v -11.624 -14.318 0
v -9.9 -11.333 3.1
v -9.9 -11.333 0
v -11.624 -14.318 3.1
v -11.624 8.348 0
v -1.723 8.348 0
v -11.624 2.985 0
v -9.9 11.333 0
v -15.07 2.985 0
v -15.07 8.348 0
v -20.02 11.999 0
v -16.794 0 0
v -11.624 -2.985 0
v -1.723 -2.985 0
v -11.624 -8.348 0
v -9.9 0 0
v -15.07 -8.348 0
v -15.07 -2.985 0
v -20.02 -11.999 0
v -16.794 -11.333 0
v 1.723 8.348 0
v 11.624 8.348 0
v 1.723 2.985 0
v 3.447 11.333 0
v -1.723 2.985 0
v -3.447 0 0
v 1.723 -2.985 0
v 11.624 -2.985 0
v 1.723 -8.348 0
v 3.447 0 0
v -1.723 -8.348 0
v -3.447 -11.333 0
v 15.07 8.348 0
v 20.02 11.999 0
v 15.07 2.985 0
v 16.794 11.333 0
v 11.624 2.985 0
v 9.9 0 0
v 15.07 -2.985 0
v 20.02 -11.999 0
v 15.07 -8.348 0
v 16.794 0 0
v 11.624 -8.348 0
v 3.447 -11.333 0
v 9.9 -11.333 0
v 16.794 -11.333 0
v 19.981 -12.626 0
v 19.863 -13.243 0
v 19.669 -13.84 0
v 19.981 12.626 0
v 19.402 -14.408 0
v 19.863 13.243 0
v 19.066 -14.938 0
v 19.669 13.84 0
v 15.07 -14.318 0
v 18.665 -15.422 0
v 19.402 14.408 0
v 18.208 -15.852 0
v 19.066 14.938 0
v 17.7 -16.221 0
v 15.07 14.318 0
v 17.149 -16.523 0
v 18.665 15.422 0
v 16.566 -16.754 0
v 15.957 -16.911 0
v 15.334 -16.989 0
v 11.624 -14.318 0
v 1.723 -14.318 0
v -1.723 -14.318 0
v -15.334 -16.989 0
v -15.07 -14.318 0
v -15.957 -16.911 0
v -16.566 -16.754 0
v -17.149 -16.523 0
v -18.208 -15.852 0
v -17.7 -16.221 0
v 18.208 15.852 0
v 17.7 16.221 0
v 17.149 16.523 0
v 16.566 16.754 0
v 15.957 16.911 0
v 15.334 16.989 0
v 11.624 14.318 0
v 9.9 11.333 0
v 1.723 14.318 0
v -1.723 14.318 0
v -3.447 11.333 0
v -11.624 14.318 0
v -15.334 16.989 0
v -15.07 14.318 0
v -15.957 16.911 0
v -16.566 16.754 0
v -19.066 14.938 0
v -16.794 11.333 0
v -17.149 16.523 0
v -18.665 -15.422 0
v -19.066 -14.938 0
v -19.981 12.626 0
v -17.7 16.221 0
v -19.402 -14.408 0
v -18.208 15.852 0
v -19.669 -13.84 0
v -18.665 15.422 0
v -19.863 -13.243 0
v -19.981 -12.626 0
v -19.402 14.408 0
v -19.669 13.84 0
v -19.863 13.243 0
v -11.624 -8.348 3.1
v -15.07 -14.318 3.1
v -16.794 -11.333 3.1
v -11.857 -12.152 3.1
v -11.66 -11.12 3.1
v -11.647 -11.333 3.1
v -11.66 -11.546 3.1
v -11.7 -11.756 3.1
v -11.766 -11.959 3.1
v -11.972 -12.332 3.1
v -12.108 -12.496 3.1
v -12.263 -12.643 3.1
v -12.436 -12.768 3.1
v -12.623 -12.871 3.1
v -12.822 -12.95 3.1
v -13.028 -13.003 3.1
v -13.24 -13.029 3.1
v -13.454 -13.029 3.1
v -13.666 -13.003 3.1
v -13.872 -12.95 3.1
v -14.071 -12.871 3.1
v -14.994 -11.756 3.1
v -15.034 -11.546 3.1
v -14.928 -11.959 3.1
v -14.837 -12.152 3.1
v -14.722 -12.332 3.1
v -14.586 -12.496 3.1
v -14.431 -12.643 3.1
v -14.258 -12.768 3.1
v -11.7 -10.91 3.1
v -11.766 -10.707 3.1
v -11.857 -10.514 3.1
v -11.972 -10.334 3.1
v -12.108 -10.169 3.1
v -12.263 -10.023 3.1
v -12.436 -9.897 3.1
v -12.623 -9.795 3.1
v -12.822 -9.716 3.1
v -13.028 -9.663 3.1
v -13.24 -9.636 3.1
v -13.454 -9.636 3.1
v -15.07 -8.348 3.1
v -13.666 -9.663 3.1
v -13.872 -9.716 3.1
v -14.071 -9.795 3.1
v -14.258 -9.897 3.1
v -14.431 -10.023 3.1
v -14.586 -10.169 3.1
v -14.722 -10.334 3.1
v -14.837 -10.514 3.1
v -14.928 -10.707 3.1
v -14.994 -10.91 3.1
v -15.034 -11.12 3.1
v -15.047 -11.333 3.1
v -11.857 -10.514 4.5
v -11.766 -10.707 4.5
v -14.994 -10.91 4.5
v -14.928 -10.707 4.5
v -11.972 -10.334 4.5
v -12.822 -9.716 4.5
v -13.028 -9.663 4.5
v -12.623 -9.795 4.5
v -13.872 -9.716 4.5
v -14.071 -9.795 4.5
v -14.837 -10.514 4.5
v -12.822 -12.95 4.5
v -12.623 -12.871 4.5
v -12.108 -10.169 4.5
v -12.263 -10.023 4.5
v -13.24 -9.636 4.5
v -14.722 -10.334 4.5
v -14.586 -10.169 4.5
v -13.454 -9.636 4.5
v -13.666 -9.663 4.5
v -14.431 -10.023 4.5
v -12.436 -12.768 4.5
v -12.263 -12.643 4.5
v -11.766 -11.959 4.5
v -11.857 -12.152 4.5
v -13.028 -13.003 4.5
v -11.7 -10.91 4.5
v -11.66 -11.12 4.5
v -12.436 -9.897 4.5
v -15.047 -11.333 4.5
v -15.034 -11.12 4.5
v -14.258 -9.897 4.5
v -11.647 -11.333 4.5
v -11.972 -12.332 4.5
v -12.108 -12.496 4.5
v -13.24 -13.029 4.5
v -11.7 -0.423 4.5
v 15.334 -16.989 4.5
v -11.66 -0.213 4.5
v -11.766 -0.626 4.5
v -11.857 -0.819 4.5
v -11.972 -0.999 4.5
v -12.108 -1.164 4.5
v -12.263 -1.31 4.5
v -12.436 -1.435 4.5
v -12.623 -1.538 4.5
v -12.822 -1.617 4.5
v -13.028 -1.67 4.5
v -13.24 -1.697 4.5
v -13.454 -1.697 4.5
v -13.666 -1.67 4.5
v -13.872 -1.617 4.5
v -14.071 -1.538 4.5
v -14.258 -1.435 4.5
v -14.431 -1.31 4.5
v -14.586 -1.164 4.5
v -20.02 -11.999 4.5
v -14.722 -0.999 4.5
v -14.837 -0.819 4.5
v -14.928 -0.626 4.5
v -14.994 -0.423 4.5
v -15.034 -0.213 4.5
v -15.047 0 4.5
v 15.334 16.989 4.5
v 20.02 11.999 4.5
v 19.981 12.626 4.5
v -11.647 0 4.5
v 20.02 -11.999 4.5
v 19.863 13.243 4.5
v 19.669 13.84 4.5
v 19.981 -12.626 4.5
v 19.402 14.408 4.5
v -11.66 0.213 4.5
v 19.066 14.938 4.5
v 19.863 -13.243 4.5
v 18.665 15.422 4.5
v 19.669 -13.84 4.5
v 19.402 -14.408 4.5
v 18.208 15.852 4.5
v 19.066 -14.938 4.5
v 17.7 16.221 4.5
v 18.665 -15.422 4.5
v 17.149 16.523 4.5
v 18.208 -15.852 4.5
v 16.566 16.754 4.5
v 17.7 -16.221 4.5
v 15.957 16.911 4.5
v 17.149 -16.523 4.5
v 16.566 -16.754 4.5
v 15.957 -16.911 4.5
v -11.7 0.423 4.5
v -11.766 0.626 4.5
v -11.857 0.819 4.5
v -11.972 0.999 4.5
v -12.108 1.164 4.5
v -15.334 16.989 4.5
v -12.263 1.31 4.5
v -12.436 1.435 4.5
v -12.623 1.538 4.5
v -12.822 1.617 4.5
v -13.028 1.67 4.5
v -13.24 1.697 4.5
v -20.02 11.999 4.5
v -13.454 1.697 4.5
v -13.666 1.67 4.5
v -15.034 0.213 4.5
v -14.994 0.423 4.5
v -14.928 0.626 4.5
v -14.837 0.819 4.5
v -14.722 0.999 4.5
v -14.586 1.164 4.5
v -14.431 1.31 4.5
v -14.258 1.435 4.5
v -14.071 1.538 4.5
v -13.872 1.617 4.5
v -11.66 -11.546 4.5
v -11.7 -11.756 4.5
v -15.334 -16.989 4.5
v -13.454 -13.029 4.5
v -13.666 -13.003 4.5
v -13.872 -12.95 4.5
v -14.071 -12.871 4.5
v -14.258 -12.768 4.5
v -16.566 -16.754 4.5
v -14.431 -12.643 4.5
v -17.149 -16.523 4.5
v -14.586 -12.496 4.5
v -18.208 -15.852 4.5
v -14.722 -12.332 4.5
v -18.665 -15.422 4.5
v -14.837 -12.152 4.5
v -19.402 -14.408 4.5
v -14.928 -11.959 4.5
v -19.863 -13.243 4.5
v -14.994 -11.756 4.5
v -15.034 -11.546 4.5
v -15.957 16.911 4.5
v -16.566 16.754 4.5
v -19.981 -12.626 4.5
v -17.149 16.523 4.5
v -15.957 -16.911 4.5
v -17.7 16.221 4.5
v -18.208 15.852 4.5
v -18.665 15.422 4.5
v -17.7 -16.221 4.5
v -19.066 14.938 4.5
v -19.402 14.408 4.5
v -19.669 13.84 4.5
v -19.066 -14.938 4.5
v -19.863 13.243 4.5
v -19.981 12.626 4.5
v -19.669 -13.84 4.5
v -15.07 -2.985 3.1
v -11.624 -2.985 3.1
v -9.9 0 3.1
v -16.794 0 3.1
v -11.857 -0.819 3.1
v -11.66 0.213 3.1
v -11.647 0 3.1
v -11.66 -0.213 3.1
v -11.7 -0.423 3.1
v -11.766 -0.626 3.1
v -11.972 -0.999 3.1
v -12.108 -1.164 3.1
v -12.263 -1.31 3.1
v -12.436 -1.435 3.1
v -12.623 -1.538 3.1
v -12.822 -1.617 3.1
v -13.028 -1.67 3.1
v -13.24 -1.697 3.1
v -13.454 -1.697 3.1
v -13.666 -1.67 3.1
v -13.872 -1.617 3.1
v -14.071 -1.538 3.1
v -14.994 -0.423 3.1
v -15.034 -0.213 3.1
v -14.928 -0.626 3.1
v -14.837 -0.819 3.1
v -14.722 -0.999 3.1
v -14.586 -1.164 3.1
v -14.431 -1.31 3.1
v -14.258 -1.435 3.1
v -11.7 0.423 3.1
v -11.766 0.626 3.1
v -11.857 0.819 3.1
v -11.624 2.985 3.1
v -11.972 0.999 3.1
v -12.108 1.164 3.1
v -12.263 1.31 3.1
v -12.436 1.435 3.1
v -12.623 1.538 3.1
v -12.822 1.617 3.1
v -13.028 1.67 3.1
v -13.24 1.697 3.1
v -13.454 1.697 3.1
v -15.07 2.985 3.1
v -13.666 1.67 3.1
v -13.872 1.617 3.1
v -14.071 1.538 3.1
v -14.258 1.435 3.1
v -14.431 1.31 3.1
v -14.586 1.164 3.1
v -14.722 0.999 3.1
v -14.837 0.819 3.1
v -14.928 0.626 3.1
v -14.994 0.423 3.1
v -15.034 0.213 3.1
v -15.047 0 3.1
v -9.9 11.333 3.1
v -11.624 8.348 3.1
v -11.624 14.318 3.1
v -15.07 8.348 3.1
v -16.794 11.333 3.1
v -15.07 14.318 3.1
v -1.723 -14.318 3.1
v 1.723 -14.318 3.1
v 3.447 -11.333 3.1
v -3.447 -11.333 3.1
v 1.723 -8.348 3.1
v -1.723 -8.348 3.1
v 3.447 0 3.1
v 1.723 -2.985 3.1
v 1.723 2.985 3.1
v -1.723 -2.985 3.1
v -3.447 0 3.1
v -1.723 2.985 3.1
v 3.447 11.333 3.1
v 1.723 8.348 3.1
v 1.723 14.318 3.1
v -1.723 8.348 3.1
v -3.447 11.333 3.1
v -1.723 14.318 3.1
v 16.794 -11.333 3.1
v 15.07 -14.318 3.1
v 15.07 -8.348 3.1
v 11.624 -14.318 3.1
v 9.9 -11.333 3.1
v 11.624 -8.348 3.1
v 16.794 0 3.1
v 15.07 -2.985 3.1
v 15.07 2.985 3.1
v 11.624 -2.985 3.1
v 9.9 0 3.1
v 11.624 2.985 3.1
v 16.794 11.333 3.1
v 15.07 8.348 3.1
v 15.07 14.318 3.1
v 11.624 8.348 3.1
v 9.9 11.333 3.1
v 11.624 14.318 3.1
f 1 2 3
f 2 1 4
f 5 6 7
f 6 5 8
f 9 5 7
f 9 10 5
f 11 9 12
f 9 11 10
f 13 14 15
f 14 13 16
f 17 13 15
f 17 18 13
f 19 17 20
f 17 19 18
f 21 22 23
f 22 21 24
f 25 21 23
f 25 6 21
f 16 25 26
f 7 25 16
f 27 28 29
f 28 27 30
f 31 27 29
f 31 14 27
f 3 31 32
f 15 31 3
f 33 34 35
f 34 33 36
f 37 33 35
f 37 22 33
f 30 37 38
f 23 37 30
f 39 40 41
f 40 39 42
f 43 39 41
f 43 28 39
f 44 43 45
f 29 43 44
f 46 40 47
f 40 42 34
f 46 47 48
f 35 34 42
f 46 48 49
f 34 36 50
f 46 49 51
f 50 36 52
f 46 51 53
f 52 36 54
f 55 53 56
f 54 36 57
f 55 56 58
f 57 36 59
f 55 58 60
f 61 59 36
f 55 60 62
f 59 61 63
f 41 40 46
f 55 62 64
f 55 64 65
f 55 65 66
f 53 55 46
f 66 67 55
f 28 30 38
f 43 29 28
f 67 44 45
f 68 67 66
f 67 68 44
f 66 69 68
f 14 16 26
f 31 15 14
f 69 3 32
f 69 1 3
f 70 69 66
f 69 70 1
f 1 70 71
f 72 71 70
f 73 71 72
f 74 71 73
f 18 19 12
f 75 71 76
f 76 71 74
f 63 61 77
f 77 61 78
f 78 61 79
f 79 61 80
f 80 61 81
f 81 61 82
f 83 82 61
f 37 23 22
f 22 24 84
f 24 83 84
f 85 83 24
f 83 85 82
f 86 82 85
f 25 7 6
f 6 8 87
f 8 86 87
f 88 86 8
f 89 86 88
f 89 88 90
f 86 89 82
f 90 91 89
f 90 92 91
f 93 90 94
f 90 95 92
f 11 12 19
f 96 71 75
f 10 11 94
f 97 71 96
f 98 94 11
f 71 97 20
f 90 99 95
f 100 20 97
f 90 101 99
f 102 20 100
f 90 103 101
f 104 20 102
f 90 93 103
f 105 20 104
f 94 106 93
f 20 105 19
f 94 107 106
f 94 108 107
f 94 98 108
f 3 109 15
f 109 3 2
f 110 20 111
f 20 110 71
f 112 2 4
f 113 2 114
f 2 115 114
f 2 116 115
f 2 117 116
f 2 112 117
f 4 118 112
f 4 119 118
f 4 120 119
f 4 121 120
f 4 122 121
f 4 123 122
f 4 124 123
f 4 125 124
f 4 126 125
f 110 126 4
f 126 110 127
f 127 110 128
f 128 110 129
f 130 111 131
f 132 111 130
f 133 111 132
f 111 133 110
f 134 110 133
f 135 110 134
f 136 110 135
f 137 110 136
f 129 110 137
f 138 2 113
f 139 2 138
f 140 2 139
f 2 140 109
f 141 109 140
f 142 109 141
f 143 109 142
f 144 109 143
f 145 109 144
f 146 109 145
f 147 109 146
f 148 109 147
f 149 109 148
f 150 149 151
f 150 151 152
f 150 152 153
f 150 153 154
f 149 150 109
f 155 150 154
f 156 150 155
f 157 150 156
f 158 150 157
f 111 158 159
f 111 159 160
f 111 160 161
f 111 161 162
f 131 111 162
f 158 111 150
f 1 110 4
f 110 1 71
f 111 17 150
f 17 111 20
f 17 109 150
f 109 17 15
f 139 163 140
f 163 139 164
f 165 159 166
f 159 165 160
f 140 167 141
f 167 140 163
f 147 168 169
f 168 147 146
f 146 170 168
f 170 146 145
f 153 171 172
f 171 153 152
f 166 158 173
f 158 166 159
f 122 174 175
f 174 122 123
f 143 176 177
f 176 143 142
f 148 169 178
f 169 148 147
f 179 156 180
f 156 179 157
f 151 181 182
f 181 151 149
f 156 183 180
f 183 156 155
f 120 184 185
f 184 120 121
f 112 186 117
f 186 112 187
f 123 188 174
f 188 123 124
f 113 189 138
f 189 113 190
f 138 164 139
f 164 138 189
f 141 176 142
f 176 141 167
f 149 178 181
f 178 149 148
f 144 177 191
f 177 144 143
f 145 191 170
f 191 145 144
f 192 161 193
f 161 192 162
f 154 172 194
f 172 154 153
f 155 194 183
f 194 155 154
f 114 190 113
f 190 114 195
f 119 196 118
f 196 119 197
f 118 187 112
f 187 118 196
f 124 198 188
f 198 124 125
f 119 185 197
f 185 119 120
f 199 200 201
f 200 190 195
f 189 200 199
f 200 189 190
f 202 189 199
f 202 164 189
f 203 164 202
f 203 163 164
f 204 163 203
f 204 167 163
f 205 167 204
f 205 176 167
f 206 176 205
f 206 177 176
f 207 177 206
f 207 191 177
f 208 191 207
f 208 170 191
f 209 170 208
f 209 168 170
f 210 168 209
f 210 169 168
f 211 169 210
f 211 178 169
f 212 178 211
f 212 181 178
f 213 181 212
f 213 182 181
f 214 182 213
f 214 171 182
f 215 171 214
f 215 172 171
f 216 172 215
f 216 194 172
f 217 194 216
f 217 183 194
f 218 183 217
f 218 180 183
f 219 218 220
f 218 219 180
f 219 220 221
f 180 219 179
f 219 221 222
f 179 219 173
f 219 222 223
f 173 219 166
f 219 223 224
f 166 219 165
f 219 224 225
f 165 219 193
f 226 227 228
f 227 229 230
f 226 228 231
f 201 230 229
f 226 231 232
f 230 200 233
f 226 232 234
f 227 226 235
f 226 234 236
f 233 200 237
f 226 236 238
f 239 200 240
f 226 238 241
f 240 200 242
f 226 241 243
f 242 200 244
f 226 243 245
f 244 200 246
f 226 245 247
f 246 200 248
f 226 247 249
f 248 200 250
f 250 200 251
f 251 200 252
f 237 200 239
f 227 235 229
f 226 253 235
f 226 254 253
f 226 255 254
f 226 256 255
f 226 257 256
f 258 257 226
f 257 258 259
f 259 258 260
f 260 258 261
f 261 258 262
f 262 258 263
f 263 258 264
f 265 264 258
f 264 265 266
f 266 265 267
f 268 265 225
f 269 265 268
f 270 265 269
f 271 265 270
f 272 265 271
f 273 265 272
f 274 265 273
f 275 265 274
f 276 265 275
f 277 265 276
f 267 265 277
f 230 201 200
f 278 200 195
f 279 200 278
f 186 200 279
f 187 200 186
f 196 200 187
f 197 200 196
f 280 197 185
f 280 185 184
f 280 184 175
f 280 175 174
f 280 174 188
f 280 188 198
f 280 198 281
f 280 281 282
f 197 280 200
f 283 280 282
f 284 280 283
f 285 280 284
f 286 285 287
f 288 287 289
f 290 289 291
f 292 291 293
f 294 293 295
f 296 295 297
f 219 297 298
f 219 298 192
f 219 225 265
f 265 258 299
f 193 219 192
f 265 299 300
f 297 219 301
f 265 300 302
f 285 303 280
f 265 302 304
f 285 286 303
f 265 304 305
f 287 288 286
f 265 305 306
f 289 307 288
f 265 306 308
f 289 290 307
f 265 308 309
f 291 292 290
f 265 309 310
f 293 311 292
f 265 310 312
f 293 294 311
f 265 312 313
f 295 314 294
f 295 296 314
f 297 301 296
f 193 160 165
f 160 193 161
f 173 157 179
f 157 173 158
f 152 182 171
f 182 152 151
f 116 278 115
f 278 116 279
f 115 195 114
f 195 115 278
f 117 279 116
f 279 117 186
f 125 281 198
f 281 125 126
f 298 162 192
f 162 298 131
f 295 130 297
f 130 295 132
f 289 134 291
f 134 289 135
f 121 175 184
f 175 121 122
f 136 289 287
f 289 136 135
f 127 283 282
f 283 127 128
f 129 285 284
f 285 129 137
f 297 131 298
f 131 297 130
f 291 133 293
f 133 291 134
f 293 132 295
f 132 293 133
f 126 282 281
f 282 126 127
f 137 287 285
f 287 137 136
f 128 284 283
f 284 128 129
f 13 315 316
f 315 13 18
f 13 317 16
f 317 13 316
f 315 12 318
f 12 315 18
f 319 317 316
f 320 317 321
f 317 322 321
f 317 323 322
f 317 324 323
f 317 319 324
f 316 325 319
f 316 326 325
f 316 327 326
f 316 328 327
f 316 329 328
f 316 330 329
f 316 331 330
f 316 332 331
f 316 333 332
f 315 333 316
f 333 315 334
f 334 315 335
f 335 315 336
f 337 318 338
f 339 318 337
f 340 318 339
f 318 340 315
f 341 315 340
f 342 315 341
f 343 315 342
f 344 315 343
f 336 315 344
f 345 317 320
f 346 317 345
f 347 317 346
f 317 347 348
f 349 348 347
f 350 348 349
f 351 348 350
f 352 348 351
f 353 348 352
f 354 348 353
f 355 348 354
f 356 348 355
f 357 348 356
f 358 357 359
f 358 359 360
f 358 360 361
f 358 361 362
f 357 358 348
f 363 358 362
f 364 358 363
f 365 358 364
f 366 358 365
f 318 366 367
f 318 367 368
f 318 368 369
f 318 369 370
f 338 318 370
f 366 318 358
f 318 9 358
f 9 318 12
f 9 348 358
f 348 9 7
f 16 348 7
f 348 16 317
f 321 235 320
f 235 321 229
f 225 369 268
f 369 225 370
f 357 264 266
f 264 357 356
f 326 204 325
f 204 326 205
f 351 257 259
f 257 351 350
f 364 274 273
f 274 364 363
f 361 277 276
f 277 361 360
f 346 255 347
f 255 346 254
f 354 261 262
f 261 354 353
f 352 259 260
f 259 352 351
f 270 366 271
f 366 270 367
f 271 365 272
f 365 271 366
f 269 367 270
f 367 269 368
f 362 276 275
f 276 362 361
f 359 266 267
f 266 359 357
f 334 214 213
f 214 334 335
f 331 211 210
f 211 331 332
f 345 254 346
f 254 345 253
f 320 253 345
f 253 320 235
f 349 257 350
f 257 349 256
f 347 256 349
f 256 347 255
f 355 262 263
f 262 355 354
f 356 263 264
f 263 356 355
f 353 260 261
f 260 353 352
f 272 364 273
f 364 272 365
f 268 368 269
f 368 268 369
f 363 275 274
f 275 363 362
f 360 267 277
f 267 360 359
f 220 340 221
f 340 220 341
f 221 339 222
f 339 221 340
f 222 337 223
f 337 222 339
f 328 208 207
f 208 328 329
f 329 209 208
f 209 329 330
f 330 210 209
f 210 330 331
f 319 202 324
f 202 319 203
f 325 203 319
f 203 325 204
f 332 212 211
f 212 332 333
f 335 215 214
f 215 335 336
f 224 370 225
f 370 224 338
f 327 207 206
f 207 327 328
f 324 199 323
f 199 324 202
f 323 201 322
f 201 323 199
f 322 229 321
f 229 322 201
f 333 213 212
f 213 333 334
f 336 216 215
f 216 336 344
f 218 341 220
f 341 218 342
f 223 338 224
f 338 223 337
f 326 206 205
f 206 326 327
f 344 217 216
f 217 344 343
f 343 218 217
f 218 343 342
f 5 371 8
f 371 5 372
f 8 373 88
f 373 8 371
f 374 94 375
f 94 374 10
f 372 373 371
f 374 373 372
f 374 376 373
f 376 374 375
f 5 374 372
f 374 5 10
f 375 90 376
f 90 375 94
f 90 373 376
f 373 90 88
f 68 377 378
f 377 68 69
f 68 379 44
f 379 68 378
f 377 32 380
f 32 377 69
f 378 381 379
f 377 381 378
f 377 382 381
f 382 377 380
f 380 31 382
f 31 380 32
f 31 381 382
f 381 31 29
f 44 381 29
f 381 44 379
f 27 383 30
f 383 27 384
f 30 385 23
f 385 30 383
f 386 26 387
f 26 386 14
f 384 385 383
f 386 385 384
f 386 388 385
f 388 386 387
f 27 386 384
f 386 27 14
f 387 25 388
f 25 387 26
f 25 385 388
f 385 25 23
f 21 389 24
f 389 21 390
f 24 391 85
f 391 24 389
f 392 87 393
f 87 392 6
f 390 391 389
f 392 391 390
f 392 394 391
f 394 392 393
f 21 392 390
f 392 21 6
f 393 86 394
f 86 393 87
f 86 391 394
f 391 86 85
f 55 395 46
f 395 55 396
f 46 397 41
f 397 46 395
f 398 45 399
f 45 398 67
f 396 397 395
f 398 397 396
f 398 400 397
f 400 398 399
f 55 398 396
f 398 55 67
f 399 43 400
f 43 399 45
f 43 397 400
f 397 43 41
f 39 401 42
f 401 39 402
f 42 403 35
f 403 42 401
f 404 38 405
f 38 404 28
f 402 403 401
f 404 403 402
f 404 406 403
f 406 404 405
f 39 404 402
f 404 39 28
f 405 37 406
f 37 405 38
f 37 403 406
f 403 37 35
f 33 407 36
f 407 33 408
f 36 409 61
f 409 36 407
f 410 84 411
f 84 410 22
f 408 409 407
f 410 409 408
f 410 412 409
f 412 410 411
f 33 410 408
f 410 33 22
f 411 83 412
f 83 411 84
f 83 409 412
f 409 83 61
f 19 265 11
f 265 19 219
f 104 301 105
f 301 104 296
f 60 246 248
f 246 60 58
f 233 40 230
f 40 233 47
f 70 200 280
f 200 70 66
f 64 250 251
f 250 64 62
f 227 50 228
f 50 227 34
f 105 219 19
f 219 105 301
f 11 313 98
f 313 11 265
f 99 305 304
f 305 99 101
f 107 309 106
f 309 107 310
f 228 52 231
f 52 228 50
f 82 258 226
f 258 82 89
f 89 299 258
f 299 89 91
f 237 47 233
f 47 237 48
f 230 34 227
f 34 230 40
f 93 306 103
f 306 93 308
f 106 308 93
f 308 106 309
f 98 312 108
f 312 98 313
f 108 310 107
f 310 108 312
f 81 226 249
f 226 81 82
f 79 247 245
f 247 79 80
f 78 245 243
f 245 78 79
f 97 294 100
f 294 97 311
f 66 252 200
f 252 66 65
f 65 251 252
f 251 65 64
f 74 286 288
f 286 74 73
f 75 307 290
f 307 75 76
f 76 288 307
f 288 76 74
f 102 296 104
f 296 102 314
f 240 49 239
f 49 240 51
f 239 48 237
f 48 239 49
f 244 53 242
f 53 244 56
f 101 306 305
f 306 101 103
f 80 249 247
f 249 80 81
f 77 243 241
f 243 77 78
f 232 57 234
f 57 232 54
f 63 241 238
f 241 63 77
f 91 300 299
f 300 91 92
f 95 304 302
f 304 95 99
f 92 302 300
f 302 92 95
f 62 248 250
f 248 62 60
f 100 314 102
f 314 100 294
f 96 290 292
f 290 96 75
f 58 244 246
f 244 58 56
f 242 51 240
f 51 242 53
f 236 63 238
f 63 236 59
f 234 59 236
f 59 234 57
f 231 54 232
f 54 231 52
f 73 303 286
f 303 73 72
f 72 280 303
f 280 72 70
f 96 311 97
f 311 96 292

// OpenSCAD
$fn = 50;


difference() {
	union() {
		translate(v = [0, 0, 0]) {
			rotate(a = [0, 0, 0]) {
				hull() {
					translate(v = [-15.0205000000, 11.9991334489, 0]) {
						rotate(a = [0, 0, 0]) {
							translate(v = [0, 0, 0]) {
								rotate(a = [0, 0, 0]) {
									cylinder(h = 4.5000000000, r = 5);
								}
							}
						}
					}
					translate(v = [15.0205000000, 11.9991334489, 0]) {
						rotate(a = [0, 0, 0]) {
							translate(v = [0, 0, 0]) {
								rotate(a = [0, 0, 0]) {
									cylinder(h = 4.5000000000, r = 5);
								}
							}
						}
					}
					translate(v = [-15.0205000000, -11.9991334489, 0]) {
						rotate(a = [0, 0, 0]) {
							translate(v = [0, 0, 0]) {
								rotate(a = [0, 0, 0]) {
									cylinder(h = 4.5000000000, r = 5);
								}
							}
						}
					}
					translate(v = [15.0205000000, -11.9991334489, 0]) {
						rotate(a = [0, 0, 0]) {
							translate(v = [0, 0, 0]) {
								rotate(a = [0, 0, 0]) {
									cylinder(h = 4.5000000000, r = 5);
								}
							}
						}
					}
				}
			}
		}
	}
	union() {
		translate(v = [-13.3470000000, -11.3327556326, 0]) {
			rotate(a = [0, 0, 0]) {
				translate(v = [0, 0, 0]) {
					rotate(a = [0, 0, 0]) {
						linear_extrude(height = 3.1000000000) {
							polygon(points = [[3.4466000000, 0.0000000000], [1.7233000000, 2.9848431567], [-1.7233000000, 2.9848431567], [-3.4466000000, 0.0000000000], [-1.7233000000, -2.9848431567], [1.7233000000, -2.9848431567]]);
						}
					}
				}
			}
		}
		#translate(v = [-13.3470000000, -11.3327556326, 0]) {
			rotate(a = [0, 0, 0]) {
				cylinder(h = 4.5000000000, r = 1.7000000000);
			}
		}
		translate(v = [-13.3470000000, -0.0000000000, 0]) {
			rotate(a = [0, 0, 0]) {
				translate(v = [0, 0, 0]) {
					rotate(a = [0, 0, 0]) {
						linear_extrude(height = 3.1000000000) {
							polygon(points = [[3.4466000000, 0.0000000000], [1.7233000000, 2.9848431567], [-1.7233000000, 2.9848431567], [-3.4466000000, 0.0000000000], [-1.7233000000, -2.9848431567], [1.7233000000, -2.9848431567]]);
						}
					}
				}
			}
		}
		#translate(v = [-13.3470000000, -0.0000000000, 0]) {
			rotate(a = [0, 0, 0]) {
				cylinder(h = 4.5000000000, r = 1.7000000000);
			}
		}
		translate(v = [-13.3470000000, 11.3327556326, 0]) {
			rotate(a = [0, 0, 0]) {
				translate(v = [0, 0, 0]) {
					rotate(a = [0, 0, 0]) {
						linear_extrude(height = 3.1000000000) {
							polygon(points = [[3.4466000000, 0.0000000000], [1.7233000000, 2.9848431567], [-1.7233000000, 2.9848431567], [-3.4466000000, 0.0000000000], [-1.7233000000, -2.9848431567], [1.7233000000, -2.9848431567]]);
						}
					}
				}
			}
		}
		translate(v = [0.0000000000, -11.3327556326, 0]) {
			rotate(a = [0, 0, 0]) {
				translate(v = [0, 0, 0]) {
					rotate(a = [0, 0, 0]) {
						linear_extrude(height = 3.1000000000) {
							polygon(points = [[3.4466000000, 0.0000000000], [1.7233000000, 2.9848431567], [-1.7233000000, 2.9848431567], [-3.4466000000, 0.0000000000], [-1.7233000000, -2.9848431567], [1.7233000000, -2.9848431567]]);
						}
					}
				}
			}
		}
		translate(v = [0.0000000000, -0.0000000000, 0]) {
			rotate(a = [0, 0, 0]) {
				translate(v = [0, 0, 0]) {
					rotate(a = [0, 0, 0]) {
						linear_extrude(height = 3.1000000000) {
							polygon(points = [[3.4466000000, 0.0000000000], [1.7233000000, 2.9848431567], [-1.7233000000, 2.9848431567], [-3.4466000000, 0.0000000000], [-1.7233000000, -2.9848431567], [1.7233000000, -2.9848431567]]);
						}
					}
				}
			}
		}
		translate(v = [0.0000000000, 11.3327556326, 0]) {
			rotate(a = [0, 0, 0]) {
				translate(v = [0, 0, 0]) {
					rotate(a = [0, 0, 0]) {
						linear_extrude(height = 3.1000000000) {
							polygon(points = [[3.4466000000, 0.0000000000], [1.7233000000, 2.9848431567], [-1.7233000000, 2.9848431567], [-3.4466000000, 0.0000000000], [-1.7233000000, -2.9848431567], [1.7233000000, -2.9848431567]]);
						}
					}
				}
			}
		}
		translate(v = [13.3470000000, -11.3327556326, 0]) {
			rotate(a = [0, 0, 0]) {
				translate(v = [0, 0, 0]) {
					rotate(a = [0, 0, 0]) {
						linear_extrude(height = 3.1000000000) {
							polygon(points = [[3.4466000000, 0.0000000000], [1.7233000000, 2.9848431567], [-1.7233000000, 2.9848431567], [-3.4466000000, 0.0000000000], [-1.7233000000, -2.9848431567], [1.7233000000, -2.9848431567]]);
						}
					}
				}
			}
		}
		translate(v = [13.3470000000, -0.0000000000, 0]) {
			rotate(a = [0, 0, 0]) {
				translate(v = [0, 0, 0]) {
					rotate(a = [0, 0, 0]) {
						linear_extrude(height = 3.1000000000) {
							polygon(points = [[3.4466000000, 0.0000000000], [1.7233000000, 2.9848431567], [-1.7233000000, 2.9848431567], [-3.4466000000, 0.0000000000], [-1.7233000000, -2.9848431567], [1.7233000000, -2.9848431567]]);
						}
					}
				}
			}
		}
		translate(v = [13.3470000000, 11.3327556326, 0]) {
			rotate(a = [0, 0, 0]) {
				translate(v = [0, 0, 0]) {
					rotate(a = [0, 0, 0]) {
						linear_extrude(height = 3.1000000000) {
							polygon(points = [[3.4466000000, 0.0000000000], [1.7233000000, 2.9848431567], [-1.7233000000, 2.9848431567], [-3.4466000000, 0.0000000000], [-1.7233000000, -2.9848431567], [1.7233000000, -2.9848431567]]);
						}
					}
				}
			}
		}
	}
}
